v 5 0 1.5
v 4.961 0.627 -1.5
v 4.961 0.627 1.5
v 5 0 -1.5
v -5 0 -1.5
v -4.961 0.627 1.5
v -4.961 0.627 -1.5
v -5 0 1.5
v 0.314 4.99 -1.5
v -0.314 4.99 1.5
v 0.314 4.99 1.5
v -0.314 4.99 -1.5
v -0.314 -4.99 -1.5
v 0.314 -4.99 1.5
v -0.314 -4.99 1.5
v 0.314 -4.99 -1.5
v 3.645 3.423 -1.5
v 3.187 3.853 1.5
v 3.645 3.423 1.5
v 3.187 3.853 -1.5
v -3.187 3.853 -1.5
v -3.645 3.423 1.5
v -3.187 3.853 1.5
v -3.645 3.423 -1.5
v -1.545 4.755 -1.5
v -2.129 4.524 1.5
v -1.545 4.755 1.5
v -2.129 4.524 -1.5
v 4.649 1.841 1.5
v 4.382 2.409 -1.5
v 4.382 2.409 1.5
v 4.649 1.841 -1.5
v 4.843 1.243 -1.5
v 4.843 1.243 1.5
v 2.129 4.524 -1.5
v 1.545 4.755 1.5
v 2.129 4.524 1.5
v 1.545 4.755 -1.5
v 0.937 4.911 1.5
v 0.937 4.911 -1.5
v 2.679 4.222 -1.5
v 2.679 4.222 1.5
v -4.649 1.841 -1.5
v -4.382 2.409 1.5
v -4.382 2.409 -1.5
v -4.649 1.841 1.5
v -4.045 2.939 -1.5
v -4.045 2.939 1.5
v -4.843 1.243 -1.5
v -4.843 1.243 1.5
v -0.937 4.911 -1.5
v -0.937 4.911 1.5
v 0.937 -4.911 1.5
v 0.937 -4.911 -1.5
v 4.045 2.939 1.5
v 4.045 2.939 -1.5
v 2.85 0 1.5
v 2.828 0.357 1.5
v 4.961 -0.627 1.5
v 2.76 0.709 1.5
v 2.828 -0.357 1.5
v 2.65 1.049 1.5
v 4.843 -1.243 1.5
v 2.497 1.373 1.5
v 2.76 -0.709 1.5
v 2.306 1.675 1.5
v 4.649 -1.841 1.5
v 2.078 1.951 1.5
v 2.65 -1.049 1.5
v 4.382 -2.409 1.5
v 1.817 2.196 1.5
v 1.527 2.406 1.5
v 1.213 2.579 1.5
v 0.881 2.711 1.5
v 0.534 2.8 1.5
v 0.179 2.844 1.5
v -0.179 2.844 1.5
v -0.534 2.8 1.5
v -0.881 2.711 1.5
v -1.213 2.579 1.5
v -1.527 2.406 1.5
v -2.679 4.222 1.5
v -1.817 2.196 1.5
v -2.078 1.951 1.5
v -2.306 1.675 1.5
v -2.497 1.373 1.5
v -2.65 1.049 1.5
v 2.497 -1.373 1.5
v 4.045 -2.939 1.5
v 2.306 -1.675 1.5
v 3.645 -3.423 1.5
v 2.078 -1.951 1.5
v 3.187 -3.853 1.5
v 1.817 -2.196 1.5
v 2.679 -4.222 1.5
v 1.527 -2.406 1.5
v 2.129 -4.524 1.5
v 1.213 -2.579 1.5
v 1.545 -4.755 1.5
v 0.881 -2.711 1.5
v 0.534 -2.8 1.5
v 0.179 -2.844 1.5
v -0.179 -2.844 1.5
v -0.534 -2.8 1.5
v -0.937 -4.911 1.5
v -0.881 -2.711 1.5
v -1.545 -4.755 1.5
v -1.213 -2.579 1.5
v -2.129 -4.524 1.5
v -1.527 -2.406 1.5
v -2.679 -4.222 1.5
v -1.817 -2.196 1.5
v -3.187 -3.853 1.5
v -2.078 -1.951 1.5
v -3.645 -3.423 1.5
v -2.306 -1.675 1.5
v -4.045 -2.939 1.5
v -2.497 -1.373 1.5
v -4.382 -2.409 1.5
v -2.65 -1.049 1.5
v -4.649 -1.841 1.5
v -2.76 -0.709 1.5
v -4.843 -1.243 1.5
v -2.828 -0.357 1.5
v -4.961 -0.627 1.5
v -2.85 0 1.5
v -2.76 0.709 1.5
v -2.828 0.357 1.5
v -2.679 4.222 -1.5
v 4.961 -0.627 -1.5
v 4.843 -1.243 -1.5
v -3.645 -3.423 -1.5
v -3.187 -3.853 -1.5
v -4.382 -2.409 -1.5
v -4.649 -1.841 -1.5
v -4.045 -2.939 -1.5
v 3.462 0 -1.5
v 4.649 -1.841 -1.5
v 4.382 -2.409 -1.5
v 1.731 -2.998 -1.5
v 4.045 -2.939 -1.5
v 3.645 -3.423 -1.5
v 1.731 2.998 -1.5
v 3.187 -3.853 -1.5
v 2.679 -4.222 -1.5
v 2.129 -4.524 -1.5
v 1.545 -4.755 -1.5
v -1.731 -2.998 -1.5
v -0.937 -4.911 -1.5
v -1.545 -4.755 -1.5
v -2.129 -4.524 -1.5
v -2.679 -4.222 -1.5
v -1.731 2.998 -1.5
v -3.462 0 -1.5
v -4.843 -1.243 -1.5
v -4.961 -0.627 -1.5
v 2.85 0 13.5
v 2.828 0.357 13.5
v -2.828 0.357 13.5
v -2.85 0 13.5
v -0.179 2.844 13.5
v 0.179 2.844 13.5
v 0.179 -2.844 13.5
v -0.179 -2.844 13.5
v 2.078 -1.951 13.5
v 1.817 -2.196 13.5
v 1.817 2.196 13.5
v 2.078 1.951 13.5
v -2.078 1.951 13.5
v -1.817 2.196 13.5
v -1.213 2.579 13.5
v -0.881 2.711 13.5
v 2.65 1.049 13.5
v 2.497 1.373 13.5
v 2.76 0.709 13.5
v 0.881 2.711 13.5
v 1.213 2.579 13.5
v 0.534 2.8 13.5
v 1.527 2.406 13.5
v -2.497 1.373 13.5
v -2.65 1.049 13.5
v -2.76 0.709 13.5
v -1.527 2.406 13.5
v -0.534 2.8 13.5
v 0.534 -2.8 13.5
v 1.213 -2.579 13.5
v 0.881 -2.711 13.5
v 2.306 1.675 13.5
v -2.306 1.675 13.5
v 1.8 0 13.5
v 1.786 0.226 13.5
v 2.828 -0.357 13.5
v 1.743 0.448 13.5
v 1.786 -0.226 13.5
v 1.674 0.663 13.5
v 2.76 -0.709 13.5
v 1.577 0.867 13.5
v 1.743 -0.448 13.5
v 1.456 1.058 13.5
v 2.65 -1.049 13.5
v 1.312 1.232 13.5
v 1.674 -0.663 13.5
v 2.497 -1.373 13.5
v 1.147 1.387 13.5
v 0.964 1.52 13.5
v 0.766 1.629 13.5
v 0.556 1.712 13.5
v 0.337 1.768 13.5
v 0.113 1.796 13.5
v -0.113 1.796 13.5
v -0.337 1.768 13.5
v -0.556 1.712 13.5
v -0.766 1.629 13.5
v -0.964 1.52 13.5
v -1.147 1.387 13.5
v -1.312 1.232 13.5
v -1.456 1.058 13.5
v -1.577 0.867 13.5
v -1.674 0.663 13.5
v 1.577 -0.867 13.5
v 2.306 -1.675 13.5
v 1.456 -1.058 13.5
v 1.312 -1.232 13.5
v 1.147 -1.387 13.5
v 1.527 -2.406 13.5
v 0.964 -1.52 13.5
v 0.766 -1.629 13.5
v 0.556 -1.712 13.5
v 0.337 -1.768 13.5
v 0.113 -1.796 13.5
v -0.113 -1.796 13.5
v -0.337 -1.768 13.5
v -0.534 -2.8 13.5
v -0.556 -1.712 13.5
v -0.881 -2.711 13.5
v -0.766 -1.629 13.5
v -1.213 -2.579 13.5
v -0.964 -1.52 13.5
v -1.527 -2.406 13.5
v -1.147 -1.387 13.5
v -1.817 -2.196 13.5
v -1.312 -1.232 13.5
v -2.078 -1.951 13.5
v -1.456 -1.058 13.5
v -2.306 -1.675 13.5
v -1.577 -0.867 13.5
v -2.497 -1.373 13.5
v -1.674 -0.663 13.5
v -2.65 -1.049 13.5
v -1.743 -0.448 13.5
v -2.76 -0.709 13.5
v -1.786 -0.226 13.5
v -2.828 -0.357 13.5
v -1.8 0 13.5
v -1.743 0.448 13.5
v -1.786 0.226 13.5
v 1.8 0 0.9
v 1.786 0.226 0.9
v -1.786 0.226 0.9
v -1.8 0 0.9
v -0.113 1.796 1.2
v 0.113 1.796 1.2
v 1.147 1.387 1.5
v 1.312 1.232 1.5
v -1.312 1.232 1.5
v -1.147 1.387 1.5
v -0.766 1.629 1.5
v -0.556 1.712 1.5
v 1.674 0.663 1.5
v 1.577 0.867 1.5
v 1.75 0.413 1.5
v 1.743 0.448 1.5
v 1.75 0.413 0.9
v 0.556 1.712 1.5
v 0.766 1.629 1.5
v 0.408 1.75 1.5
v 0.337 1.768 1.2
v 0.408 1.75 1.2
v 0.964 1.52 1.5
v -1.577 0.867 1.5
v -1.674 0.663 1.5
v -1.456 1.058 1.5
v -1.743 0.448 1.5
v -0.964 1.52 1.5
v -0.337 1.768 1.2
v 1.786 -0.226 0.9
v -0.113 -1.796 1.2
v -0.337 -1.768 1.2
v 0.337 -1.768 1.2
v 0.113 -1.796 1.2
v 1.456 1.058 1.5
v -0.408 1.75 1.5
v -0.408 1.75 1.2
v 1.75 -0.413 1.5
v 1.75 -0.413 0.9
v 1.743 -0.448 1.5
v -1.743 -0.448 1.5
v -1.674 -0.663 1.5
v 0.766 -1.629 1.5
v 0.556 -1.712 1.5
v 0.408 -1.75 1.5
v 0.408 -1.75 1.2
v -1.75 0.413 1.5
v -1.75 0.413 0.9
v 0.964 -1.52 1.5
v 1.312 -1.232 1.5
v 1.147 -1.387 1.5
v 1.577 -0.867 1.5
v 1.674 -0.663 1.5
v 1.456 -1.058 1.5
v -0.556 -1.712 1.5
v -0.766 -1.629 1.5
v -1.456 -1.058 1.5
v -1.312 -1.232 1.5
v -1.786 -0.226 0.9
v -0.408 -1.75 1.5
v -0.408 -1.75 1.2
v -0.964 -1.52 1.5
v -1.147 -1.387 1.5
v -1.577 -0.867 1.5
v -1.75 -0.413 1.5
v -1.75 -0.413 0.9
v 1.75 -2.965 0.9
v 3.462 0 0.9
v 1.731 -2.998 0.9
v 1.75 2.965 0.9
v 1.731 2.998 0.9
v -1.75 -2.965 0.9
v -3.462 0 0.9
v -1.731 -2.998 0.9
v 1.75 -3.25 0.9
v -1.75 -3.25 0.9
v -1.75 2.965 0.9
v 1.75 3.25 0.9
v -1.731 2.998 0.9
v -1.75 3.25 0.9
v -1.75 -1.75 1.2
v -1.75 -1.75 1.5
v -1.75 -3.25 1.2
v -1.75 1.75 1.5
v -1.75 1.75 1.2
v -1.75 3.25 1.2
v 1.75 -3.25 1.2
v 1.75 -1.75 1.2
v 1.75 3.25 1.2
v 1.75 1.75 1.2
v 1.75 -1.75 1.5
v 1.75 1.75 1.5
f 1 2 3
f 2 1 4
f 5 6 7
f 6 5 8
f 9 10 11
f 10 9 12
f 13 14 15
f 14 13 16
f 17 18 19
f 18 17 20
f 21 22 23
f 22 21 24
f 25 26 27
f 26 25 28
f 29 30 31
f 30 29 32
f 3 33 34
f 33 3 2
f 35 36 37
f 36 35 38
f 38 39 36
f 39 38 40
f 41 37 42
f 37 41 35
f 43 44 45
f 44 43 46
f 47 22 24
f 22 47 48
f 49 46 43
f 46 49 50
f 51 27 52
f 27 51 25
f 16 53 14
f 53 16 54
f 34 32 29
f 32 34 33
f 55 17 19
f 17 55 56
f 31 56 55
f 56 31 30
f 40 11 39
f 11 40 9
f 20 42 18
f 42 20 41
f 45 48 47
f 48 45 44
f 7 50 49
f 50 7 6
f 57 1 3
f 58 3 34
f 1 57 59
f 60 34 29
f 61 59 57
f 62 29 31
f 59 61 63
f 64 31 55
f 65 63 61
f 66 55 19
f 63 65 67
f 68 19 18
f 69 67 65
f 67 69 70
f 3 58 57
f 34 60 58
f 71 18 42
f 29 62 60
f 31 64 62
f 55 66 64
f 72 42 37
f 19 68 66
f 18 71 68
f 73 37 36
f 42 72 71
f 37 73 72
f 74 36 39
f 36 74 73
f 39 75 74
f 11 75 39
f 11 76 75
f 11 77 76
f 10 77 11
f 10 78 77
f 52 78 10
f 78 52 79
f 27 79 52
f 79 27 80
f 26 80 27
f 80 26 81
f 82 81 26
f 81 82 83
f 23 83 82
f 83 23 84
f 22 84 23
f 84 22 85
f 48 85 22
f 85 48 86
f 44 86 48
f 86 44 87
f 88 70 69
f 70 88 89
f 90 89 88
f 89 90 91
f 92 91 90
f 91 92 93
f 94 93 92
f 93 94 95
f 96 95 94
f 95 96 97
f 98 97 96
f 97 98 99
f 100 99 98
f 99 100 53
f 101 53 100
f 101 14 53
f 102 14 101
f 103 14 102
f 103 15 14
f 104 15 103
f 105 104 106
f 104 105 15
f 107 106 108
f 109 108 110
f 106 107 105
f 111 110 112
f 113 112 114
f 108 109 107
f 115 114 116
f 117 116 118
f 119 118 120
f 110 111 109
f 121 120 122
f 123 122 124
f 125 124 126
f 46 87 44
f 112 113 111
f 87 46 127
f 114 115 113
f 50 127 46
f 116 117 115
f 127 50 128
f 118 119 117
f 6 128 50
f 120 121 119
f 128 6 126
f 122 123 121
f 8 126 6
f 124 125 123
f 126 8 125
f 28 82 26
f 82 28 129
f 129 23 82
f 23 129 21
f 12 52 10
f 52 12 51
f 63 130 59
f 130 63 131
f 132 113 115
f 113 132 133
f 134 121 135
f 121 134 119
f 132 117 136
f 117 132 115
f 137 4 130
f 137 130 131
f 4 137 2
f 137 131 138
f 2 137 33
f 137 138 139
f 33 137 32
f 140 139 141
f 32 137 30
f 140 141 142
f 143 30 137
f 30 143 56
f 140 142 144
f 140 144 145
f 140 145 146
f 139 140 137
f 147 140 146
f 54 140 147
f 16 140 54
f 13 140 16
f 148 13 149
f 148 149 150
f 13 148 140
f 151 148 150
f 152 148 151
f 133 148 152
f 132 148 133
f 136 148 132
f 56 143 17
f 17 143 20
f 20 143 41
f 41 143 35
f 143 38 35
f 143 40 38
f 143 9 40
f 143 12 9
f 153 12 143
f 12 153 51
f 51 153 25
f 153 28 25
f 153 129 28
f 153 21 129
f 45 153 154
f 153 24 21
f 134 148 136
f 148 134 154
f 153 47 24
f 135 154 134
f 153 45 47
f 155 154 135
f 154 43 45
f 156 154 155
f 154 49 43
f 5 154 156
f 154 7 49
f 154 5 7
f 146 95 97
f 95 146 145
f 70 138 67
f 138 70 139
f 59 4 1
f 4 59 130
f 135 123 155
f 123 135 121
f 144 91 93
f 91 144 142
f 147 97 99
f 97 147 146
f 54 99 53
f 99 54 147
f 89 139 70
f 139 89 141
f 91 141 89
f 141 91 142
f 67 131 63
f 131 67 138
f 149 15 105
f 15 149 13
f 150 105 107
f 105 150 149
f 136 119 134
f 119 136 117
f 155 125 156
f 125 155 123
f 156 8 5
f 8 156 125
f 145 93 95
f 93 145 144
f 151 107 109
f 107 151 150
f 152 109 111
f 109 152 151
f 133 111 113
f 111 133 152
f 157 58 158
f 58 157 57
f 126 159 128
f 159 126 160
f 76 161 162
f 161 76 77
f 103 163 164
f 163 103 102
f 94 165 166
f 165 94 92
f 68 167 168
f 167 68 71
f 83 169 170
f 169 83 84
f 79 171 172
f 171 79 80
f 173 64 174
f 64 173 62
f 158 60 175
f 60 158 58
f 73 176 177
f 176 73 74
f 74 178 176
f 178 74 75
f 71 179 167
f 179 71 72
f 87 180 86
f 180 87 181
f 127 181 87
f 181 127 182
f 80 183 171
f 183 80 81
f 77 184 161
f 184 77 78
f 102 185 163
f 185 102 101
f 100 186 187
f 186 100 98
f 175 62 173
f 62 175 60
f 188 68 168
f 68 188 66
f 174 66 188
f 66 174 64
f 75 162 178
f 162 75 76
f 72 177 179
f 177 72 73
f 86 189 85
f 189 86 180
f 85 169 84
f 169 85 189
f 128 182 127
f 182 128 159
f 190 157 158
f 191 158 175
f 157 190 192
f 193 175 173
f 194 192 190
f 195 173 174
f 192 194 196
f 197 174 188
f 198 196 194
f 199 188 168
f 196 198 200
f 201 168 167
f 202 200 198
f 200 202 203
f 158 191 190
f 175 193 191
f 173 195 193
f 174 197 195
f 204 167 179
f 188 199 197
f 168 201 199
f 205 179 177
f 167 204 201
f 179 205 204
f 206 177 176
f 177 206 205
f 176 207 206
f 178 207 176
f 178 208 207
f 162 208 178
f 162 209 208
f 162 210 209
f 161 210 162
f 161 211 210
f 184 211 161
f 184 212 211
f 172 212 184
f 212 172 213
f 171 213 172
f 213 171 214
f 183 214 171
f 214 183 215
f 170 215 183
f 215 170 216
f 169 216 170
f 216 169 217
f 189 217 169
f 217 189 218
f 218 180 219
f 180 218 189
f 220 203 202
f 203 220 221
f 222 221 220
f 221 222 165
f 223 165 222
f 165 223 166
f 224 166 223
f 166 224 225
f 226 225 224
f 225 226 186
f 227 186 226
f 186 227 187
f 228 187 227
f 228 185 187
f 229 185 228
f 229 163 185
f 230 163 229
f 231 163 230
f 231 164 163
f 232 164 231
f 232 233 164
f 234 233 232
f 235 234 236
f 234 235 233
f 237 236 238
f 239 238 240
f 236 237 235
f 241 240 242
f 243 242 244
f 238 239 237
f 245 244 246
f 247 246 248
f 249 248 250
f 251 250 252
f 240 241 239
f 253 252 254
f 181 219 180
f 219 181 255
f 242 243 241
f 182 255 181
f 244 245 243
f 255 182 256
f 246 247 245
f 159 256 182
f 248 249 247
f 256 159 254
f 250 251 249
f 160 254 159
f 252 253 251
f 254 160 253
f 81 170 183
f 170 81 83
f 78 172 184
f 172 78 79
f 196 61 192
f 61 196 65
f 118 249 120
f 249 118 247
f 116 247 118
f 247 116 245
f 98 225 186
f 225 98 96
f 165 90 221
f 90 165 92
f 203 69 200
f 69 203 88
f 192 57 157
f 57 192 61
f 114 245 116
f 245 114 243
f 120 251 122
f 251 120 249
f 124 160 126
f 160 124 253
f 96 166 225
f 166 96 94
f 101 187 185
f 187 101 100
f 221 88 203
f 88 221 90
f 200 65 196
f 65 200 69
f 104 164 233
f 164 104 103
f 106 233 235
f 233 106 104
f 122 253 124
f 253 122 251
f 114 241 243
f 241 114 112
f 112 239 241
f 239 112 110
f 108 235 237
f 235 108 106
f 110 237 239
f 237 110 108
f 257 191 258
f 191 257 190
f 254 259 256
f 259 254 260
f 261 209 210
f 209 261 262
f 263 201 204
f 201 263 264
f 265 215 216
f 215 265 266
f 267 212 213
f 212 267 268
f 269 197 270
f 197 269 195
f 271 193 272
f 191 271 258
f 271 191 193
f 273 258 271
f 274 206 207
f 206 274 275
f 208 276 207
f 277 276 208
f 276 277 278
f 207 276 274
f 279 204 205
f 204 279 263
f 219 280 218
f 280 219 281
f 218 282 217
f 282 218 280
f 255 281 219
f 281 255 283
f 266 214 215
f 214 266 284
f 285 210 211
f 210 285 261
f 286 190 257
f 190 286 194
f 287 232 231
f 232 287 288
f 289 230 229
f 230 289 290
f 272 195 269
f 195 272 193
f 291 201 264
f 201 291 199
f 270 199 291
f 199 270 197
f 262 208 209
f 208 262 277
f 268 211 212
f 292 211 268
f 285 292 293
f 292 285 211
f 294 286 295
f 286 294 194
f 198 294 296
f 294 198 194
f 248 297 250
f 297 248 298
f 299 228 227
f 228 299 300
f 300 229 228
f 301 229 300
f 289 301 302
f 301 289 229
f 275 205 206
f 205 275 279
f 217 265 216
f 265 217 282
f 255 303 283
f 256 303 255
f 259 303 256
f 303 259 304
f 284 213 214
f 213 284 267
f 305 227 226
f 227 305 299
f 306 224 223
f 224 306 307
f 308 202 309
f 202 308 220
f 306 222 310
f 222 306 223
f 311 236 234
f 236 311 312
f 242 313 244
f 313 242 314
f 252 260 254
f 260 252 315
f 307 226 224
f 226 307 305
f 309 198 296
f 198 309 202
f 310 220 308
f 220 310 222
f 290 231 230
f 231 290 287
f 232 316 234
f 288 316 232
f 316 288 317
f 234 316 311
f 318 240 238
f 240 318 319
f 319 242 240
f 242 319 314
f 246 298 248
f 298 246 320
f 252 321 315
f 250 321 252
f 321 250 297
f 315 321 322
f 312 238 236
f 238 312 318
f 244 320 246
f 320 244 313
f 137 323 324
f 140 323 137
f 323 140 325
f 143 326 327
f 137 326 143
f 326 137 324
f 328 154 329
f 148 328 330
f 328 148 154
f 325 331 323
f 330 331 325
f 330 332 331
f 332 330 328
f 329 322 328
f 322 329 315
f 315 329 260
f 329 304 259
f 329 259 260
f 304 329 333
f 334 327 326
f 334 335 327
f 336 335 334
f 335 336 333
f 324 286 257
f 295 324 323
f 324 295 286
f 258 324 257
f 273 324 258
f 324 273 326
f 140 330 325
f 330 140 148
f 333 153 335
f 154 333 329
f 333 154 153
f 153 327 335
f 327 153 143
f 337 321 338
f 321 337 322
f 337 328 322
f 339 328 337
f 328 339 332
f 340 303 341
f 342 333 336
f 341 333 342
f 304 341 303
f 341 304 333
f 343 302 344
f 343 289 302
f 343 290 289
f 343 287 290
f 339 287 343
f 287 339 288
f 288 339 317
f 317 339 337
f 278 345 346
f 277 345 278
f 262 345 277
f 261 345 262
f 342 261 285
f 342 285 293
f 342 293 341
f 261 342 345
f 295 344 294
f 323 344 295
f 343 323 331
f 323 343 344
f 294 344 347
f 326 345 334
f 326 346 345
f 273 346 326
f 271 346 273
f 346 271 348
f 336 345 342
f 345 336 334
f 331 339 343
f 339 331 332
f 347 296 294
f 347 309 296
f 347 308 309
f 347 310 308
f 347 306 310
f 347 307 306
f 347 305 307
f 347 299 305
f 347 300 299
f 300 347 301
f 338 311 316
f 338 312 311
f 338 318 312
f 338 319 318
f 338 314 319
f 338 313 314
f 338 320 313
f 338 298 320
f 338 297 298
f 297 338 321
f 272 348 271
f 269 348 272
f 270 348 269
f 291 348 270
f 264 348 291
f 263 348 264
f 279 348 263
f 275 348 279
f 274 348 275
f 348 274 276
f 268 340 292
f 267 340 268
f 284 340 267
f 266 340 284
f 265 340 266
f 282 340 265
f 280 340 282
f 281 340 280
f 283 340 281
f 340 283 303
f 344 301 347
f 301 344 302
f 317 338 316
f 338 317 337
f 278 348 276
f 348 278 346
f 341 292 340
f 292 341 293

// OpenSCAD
$fn = 50;


difference() {
	union() {
		translate(v = [0, 0, -1.5000000000]) {
			rotate(a = [0, 0, 0]) {
				cylinder(h = 3, r = 5.0000000000);
			}
		}
		translate(v = [0, 0, -1.5000000000]) {
			rotate(a = [0, 0, 0]) {
				cylinder(h = 15, r = 2.8500000000);
			}
		}
	}
	union() {
		translate(v = [0, 0, -125.0000000000]) {
			rotate(a = [0, 0, 0]) {
				cylinder(h = 250, r = 1.8000000000);
			}
		}
		translate(v = [0, 0, -2.1000000000]) {
			rotate(a = [0, 0, 0]) {
				#translate(v = [0, 0, 0]) {
					rotate(a = [0, 0, 0]) {
						linear_extrude(height = 3) {
							polygon(points = [[3.4620000000, 0.0000000000], [1.7310000000, 2.9981799479], [-1.7310000000, 2.9981799479], [-3.4620000000, 0.0000000000], [-1.7310000000, -2.9981799479], [1.7310000000, -2.9981799479]]);
						}
					}
				}
			}
		}
		#translate(v = [-1.7500000000, -3.2500000000, 0.9000000000]) {
			rotate(a = [0, 0, 0]) {
				cube(size = [3.5000000000, 6.5000000000, 0.3000000000]);
			}
		}
		#translate(v = [-1.7500000000, -1.7500000000, 1.2000000000]) {
			rotate(a = [0, 0, 0]) {
				cube(size = [3.5000000000, 3.5000000000, 0.3000000000]);
			}
		}
		#translate(v = [-1.7500000000, -3.2500000000, -2.4000000000]) {
			rotate(a = [0, 0, 0]) {
				cube(size = [3.5000000000, 6.5000000000, 0.3000000000]);
			}
		}
		#translate(v = [-1.7500000000, -1.7500000000, -2.7000000000]) {
			rotate(a = [0, 0, 0]) {
				cube(size = [3.5000000000, 3.5000000000, 0.3000000000]);
			}
		}
	}
}
